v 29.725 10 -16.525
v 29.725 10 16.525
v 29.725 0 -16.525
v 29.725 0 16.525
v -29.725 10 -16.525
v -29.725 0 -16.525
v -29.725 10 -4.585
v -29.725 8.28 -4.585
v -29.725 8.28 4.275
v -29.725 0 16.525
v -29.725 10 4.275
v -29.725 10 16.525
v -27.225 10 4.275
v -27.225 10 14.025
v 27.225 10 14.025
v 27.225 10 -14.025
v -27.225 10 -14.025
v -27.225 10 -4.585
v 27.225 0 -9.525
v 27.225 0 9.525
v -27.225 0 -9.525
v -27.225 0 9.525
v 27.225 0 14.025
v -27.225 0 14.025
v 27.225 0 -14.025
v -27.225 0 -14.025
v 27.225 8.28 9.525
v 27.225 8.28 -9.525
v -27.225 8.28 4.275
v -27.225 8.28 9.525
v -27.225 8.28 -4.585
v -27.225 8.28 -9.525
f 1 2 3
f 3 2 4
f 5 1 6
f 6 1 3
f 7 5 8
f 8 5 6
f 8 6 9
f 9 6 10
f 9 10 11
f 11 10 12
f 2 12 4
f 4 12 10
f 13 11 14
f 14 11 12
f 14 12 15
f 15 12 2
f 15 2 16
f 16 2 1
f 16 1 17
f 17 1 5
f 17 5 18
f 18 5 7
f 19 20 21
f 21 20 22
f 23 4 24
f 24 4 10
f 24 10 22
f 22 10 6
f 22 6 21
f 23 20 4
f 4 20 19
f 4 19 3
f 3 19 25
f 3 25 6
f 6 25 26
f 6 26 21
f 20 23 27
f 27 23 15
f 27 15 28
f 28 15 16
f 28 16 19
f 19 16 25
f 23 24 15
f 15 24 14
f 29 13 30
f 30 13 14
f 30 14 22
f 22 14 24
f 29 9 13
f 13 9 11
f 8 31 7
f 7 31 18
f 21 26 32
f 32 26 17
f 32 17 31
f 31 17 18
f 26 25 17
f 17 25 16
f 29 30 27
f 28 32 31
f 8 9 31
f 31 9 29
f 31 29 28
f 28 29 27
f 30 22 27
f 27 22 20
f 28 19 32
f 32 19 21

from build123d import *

# Parameters (mm, degrees)
SKETCH1_W           = 59.45
SKETCH1_H           = 33.05
BOSS_EXTRUDE1_DEPTH = 10
CUT_EXTRUDE1_DEPTH  = 1.72
SKETCH3_W           = 54.45
SKETCH3_H           = 4.5
CUT_EXTRUDE2_DEPTH  = 9.2


with BuildPart() as part:
    # Sketch1 → Boss-Extrude1 (new body)
    with BuildSketch(Plane(origin=(0, 0, 0), x_dir=(1, 0, 0), z_dir=(0, 1, 0))):
        Rectangle(SKETCH1_W, SKETCH1_H)
    extrude(amount=BOSS_EXTRUDE1_DEPTH)

    # Sketch2 → Cut-Extrude1 (cut)
    with BuildSketch(Plane(origin=(0, 10, 0), x_dir=(1, 0, 0), z_dir=(0, 1, 0))):
        Polygon((-27.225, -4.275), (-29.72540031, -4.275), (-29.725, 4.584999991), (-27.225, 4.584999991), (-27.225, 14.025), (27.225, 14.025), (27.225, -14.025), (-27.225, -14.025), align=None)
    extrude(amount=-CUT_EXTRUDE1_DEPTH, mode=Mode.SUBTRACT)

    # Sketch3 → Cut-Extrude2 (cut)
    with BuildSketch(Plane(origin=(0, 8.28, 0), x_dir=(1, 0, 0), z_dir=(0, 1, 0))):
        with Locations((0, 11.775)):
            Rectangle(SKETCH3_W, SKETCH3_H)
        with Locations((0, -11.775)):
            Rectangle(SKETCH3_W, SKETCH3_H)
    extrude(amount=-CUT_EXTRUDE2_DEPTH, mode=Mode.SUBTRACT)


solid = part.part
